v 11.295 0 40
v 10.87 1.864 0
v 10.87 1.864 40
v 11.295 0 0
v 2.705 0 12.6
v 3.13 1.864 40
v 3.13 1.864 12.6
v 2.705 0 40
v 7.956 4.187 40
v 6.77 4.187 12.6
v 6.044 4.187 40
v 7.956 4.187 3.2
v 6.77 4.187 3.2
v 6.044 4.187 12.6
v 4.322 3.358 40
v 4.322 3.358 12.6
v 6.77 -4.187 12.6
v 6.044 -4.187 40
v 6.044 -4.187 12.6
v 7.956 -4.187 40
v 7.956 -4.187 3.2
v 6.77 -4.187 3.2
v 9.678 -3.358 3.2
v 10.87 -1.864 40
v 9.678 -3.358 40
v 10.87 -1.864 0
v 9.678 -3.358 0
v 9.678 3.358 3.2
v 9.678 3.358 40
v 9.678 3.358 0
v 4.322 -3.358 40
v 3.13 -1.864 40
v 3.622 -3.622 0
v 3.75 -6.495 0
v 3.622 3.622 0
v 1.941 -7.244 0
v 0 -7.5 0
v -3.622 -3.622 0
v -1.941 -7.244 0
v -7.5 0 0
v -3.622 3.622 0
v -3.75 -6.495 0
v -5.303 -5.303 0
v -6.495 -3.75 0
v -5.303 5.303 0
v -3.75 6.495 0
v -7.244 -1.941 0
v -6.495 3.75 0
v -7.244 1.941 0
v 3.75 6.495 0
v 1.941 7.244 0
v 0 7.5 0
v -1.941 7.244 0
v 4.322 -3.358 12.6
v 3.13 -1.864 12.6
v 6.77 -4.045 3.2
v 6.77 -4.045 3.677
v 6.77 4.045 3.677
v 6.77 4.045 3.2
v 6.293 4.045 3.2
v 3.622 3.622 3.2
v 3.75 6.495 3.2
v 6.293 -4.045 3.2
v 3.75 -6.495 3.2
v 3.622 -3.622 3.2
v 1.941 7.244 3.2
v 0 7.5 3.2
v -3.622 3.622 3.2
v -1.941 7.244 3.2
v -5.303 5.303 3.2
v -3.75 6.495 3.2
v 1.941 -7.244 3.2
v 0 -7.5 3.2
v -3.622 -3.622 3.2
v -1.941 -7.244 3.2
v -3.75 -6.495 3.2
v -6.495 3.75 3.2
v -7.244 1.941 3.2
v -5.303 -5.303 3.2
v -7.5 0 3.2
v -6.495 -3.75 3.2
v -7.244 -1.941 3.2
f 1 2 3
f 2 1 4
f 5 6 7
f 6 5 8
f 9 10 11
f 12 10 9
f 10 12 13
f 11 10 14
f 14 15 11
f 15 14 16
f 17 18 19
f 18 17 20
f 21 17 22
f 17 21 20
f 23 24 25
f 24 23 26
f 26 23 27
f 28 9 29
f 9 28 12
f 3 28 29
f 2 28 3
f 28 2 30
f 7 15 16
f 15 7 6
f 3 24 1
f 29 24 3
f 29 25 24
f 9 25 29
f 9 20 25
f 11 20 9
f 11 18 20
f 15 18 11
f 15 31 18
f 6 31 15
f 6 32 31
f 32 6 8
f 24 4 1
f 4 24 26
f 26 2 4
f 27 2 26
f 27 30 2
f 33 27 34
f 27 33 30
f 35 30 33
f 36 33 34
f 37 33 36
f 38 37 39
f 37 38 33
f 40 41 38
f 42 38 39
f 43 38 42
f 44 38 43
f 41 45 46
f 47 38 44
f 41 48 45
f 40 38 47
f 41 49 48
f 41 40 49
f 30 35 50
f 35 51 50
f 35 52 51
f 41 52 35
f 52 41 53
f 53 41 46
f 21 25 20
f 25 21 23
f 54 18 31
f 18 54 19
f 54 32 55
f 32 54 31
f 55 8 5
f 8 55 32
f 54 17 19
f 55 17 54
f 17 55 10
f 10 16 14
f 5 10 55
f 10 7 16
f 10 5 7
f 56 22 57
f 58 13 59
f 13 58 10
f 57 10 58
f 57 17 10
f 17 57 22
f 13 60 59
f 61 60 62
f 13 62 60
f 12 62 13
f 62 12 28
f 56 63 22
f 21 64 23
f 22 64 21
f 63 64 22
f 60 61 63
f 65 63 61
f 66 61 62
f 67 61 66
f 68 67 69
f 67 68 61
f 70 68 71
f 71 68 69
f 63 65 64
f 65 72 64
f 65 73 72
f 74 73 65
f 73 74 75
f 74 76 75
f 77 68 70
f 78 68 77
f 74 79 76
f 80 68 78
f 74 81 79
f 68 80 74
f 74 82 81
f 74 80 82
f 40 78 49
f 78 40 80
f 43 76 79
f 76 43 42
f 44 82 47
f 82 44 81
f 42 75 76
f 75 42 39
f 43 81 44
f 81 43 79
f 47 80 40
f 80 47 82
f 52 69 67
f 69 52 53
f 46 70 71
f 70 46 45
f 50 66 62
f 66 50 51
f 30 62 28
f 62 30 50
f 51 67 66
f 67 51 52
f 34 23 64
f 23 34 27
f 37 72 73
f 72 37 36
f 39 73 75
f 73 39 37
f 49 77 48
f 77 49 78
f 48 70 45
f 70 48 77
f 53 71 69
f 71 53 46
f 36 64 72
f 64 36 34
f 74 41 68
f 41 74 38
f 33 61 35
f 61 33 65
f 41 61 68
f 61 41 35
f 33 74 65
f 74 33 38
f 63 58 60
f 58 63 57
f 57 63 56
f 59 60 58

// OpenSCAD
// file: fillet.scad
// Fillet function

module fillet(r=1.0,steps=3,include=true) {
  if(include) for (k=[0:$children-1]) {
	children(k);
  }
  for (i=[0:$children-2] ) {
    for(j=[i+1:$children-1] ) {
	fillet_two(r=r,steps=steps) {
	  children(i);
	  children(j);
	  intersection() {
		children(i);
		children(j);
	  }
	}
    }
  }
}

module fillet_two(r=1.0,steps=3) {
  for(step=[1:steps]) {
	hull() {
	  render() intersection() {
		children(0);
		offset_3d(r=r*step/steps) children(2);
	  }
	  render() intersection() {
		children(1);
		offset_3d(r=r*(steps-step+1)/steps) children(2);
	  }
	}
  }
}

module offset_3d(r=1.0) {
  for(k=[0:$children-1]) minkowski() {
	children(k);
	sphere(r=r,$fn=8);
  }
}
// main file
include <fillet.scad>

// relevant lock dimensions (in mm)

caliper_resolution = 0.02;

shaft_width = 6.90;
shaft_length = 7.70;
shaft_od = 8.00;
nut_width = 10.92;
nut_od = 12.54;
nut_thickness = 4.90;

// customizeable dimensions (mm)
cam_base_od = 15;
cam_base_thickness = 3.20;
cam_hole_width = 7.30;
cam_od = 8.59;
cam_offset = 7;
cam_length = 40;


module base() {
    cylinder(h = cam_base_thickness, d = cam_base_od);
}

module cam() {
  difference() {
    translate([cam_offset, 0, 0]) cylinder(h = cam_length, d = cam_od);
    translate([0.5, 0, cam_base_thickness]) resize([0, 0, nut_thickness + shaft_length - cam_base_thickness]) nut();
  }
}




module nut() {
  translate([0, 0, 0.5 * nut_thickness]) cube([nut_od, nut_od, nut_thickness], center=true);
}

module shaft() {
  scale([1.05, 1.05, 1.05])
  cube([shaft_width, shaft_width, shaft_length], center=true);
}

module body() {
    hull() {
      base();
      translate([cam_offset, 0, 0]) cylinder(d = cam_od, h = cam_base_thickness);
    }
    cam();
}

difference() {
  body();
  shaft();
}

// fillets
translate([cam_offset, 0, cam_base_thickness]) rotate([0, 45, 0]) cube([1, cam_od-0.5, 2], center=true);
